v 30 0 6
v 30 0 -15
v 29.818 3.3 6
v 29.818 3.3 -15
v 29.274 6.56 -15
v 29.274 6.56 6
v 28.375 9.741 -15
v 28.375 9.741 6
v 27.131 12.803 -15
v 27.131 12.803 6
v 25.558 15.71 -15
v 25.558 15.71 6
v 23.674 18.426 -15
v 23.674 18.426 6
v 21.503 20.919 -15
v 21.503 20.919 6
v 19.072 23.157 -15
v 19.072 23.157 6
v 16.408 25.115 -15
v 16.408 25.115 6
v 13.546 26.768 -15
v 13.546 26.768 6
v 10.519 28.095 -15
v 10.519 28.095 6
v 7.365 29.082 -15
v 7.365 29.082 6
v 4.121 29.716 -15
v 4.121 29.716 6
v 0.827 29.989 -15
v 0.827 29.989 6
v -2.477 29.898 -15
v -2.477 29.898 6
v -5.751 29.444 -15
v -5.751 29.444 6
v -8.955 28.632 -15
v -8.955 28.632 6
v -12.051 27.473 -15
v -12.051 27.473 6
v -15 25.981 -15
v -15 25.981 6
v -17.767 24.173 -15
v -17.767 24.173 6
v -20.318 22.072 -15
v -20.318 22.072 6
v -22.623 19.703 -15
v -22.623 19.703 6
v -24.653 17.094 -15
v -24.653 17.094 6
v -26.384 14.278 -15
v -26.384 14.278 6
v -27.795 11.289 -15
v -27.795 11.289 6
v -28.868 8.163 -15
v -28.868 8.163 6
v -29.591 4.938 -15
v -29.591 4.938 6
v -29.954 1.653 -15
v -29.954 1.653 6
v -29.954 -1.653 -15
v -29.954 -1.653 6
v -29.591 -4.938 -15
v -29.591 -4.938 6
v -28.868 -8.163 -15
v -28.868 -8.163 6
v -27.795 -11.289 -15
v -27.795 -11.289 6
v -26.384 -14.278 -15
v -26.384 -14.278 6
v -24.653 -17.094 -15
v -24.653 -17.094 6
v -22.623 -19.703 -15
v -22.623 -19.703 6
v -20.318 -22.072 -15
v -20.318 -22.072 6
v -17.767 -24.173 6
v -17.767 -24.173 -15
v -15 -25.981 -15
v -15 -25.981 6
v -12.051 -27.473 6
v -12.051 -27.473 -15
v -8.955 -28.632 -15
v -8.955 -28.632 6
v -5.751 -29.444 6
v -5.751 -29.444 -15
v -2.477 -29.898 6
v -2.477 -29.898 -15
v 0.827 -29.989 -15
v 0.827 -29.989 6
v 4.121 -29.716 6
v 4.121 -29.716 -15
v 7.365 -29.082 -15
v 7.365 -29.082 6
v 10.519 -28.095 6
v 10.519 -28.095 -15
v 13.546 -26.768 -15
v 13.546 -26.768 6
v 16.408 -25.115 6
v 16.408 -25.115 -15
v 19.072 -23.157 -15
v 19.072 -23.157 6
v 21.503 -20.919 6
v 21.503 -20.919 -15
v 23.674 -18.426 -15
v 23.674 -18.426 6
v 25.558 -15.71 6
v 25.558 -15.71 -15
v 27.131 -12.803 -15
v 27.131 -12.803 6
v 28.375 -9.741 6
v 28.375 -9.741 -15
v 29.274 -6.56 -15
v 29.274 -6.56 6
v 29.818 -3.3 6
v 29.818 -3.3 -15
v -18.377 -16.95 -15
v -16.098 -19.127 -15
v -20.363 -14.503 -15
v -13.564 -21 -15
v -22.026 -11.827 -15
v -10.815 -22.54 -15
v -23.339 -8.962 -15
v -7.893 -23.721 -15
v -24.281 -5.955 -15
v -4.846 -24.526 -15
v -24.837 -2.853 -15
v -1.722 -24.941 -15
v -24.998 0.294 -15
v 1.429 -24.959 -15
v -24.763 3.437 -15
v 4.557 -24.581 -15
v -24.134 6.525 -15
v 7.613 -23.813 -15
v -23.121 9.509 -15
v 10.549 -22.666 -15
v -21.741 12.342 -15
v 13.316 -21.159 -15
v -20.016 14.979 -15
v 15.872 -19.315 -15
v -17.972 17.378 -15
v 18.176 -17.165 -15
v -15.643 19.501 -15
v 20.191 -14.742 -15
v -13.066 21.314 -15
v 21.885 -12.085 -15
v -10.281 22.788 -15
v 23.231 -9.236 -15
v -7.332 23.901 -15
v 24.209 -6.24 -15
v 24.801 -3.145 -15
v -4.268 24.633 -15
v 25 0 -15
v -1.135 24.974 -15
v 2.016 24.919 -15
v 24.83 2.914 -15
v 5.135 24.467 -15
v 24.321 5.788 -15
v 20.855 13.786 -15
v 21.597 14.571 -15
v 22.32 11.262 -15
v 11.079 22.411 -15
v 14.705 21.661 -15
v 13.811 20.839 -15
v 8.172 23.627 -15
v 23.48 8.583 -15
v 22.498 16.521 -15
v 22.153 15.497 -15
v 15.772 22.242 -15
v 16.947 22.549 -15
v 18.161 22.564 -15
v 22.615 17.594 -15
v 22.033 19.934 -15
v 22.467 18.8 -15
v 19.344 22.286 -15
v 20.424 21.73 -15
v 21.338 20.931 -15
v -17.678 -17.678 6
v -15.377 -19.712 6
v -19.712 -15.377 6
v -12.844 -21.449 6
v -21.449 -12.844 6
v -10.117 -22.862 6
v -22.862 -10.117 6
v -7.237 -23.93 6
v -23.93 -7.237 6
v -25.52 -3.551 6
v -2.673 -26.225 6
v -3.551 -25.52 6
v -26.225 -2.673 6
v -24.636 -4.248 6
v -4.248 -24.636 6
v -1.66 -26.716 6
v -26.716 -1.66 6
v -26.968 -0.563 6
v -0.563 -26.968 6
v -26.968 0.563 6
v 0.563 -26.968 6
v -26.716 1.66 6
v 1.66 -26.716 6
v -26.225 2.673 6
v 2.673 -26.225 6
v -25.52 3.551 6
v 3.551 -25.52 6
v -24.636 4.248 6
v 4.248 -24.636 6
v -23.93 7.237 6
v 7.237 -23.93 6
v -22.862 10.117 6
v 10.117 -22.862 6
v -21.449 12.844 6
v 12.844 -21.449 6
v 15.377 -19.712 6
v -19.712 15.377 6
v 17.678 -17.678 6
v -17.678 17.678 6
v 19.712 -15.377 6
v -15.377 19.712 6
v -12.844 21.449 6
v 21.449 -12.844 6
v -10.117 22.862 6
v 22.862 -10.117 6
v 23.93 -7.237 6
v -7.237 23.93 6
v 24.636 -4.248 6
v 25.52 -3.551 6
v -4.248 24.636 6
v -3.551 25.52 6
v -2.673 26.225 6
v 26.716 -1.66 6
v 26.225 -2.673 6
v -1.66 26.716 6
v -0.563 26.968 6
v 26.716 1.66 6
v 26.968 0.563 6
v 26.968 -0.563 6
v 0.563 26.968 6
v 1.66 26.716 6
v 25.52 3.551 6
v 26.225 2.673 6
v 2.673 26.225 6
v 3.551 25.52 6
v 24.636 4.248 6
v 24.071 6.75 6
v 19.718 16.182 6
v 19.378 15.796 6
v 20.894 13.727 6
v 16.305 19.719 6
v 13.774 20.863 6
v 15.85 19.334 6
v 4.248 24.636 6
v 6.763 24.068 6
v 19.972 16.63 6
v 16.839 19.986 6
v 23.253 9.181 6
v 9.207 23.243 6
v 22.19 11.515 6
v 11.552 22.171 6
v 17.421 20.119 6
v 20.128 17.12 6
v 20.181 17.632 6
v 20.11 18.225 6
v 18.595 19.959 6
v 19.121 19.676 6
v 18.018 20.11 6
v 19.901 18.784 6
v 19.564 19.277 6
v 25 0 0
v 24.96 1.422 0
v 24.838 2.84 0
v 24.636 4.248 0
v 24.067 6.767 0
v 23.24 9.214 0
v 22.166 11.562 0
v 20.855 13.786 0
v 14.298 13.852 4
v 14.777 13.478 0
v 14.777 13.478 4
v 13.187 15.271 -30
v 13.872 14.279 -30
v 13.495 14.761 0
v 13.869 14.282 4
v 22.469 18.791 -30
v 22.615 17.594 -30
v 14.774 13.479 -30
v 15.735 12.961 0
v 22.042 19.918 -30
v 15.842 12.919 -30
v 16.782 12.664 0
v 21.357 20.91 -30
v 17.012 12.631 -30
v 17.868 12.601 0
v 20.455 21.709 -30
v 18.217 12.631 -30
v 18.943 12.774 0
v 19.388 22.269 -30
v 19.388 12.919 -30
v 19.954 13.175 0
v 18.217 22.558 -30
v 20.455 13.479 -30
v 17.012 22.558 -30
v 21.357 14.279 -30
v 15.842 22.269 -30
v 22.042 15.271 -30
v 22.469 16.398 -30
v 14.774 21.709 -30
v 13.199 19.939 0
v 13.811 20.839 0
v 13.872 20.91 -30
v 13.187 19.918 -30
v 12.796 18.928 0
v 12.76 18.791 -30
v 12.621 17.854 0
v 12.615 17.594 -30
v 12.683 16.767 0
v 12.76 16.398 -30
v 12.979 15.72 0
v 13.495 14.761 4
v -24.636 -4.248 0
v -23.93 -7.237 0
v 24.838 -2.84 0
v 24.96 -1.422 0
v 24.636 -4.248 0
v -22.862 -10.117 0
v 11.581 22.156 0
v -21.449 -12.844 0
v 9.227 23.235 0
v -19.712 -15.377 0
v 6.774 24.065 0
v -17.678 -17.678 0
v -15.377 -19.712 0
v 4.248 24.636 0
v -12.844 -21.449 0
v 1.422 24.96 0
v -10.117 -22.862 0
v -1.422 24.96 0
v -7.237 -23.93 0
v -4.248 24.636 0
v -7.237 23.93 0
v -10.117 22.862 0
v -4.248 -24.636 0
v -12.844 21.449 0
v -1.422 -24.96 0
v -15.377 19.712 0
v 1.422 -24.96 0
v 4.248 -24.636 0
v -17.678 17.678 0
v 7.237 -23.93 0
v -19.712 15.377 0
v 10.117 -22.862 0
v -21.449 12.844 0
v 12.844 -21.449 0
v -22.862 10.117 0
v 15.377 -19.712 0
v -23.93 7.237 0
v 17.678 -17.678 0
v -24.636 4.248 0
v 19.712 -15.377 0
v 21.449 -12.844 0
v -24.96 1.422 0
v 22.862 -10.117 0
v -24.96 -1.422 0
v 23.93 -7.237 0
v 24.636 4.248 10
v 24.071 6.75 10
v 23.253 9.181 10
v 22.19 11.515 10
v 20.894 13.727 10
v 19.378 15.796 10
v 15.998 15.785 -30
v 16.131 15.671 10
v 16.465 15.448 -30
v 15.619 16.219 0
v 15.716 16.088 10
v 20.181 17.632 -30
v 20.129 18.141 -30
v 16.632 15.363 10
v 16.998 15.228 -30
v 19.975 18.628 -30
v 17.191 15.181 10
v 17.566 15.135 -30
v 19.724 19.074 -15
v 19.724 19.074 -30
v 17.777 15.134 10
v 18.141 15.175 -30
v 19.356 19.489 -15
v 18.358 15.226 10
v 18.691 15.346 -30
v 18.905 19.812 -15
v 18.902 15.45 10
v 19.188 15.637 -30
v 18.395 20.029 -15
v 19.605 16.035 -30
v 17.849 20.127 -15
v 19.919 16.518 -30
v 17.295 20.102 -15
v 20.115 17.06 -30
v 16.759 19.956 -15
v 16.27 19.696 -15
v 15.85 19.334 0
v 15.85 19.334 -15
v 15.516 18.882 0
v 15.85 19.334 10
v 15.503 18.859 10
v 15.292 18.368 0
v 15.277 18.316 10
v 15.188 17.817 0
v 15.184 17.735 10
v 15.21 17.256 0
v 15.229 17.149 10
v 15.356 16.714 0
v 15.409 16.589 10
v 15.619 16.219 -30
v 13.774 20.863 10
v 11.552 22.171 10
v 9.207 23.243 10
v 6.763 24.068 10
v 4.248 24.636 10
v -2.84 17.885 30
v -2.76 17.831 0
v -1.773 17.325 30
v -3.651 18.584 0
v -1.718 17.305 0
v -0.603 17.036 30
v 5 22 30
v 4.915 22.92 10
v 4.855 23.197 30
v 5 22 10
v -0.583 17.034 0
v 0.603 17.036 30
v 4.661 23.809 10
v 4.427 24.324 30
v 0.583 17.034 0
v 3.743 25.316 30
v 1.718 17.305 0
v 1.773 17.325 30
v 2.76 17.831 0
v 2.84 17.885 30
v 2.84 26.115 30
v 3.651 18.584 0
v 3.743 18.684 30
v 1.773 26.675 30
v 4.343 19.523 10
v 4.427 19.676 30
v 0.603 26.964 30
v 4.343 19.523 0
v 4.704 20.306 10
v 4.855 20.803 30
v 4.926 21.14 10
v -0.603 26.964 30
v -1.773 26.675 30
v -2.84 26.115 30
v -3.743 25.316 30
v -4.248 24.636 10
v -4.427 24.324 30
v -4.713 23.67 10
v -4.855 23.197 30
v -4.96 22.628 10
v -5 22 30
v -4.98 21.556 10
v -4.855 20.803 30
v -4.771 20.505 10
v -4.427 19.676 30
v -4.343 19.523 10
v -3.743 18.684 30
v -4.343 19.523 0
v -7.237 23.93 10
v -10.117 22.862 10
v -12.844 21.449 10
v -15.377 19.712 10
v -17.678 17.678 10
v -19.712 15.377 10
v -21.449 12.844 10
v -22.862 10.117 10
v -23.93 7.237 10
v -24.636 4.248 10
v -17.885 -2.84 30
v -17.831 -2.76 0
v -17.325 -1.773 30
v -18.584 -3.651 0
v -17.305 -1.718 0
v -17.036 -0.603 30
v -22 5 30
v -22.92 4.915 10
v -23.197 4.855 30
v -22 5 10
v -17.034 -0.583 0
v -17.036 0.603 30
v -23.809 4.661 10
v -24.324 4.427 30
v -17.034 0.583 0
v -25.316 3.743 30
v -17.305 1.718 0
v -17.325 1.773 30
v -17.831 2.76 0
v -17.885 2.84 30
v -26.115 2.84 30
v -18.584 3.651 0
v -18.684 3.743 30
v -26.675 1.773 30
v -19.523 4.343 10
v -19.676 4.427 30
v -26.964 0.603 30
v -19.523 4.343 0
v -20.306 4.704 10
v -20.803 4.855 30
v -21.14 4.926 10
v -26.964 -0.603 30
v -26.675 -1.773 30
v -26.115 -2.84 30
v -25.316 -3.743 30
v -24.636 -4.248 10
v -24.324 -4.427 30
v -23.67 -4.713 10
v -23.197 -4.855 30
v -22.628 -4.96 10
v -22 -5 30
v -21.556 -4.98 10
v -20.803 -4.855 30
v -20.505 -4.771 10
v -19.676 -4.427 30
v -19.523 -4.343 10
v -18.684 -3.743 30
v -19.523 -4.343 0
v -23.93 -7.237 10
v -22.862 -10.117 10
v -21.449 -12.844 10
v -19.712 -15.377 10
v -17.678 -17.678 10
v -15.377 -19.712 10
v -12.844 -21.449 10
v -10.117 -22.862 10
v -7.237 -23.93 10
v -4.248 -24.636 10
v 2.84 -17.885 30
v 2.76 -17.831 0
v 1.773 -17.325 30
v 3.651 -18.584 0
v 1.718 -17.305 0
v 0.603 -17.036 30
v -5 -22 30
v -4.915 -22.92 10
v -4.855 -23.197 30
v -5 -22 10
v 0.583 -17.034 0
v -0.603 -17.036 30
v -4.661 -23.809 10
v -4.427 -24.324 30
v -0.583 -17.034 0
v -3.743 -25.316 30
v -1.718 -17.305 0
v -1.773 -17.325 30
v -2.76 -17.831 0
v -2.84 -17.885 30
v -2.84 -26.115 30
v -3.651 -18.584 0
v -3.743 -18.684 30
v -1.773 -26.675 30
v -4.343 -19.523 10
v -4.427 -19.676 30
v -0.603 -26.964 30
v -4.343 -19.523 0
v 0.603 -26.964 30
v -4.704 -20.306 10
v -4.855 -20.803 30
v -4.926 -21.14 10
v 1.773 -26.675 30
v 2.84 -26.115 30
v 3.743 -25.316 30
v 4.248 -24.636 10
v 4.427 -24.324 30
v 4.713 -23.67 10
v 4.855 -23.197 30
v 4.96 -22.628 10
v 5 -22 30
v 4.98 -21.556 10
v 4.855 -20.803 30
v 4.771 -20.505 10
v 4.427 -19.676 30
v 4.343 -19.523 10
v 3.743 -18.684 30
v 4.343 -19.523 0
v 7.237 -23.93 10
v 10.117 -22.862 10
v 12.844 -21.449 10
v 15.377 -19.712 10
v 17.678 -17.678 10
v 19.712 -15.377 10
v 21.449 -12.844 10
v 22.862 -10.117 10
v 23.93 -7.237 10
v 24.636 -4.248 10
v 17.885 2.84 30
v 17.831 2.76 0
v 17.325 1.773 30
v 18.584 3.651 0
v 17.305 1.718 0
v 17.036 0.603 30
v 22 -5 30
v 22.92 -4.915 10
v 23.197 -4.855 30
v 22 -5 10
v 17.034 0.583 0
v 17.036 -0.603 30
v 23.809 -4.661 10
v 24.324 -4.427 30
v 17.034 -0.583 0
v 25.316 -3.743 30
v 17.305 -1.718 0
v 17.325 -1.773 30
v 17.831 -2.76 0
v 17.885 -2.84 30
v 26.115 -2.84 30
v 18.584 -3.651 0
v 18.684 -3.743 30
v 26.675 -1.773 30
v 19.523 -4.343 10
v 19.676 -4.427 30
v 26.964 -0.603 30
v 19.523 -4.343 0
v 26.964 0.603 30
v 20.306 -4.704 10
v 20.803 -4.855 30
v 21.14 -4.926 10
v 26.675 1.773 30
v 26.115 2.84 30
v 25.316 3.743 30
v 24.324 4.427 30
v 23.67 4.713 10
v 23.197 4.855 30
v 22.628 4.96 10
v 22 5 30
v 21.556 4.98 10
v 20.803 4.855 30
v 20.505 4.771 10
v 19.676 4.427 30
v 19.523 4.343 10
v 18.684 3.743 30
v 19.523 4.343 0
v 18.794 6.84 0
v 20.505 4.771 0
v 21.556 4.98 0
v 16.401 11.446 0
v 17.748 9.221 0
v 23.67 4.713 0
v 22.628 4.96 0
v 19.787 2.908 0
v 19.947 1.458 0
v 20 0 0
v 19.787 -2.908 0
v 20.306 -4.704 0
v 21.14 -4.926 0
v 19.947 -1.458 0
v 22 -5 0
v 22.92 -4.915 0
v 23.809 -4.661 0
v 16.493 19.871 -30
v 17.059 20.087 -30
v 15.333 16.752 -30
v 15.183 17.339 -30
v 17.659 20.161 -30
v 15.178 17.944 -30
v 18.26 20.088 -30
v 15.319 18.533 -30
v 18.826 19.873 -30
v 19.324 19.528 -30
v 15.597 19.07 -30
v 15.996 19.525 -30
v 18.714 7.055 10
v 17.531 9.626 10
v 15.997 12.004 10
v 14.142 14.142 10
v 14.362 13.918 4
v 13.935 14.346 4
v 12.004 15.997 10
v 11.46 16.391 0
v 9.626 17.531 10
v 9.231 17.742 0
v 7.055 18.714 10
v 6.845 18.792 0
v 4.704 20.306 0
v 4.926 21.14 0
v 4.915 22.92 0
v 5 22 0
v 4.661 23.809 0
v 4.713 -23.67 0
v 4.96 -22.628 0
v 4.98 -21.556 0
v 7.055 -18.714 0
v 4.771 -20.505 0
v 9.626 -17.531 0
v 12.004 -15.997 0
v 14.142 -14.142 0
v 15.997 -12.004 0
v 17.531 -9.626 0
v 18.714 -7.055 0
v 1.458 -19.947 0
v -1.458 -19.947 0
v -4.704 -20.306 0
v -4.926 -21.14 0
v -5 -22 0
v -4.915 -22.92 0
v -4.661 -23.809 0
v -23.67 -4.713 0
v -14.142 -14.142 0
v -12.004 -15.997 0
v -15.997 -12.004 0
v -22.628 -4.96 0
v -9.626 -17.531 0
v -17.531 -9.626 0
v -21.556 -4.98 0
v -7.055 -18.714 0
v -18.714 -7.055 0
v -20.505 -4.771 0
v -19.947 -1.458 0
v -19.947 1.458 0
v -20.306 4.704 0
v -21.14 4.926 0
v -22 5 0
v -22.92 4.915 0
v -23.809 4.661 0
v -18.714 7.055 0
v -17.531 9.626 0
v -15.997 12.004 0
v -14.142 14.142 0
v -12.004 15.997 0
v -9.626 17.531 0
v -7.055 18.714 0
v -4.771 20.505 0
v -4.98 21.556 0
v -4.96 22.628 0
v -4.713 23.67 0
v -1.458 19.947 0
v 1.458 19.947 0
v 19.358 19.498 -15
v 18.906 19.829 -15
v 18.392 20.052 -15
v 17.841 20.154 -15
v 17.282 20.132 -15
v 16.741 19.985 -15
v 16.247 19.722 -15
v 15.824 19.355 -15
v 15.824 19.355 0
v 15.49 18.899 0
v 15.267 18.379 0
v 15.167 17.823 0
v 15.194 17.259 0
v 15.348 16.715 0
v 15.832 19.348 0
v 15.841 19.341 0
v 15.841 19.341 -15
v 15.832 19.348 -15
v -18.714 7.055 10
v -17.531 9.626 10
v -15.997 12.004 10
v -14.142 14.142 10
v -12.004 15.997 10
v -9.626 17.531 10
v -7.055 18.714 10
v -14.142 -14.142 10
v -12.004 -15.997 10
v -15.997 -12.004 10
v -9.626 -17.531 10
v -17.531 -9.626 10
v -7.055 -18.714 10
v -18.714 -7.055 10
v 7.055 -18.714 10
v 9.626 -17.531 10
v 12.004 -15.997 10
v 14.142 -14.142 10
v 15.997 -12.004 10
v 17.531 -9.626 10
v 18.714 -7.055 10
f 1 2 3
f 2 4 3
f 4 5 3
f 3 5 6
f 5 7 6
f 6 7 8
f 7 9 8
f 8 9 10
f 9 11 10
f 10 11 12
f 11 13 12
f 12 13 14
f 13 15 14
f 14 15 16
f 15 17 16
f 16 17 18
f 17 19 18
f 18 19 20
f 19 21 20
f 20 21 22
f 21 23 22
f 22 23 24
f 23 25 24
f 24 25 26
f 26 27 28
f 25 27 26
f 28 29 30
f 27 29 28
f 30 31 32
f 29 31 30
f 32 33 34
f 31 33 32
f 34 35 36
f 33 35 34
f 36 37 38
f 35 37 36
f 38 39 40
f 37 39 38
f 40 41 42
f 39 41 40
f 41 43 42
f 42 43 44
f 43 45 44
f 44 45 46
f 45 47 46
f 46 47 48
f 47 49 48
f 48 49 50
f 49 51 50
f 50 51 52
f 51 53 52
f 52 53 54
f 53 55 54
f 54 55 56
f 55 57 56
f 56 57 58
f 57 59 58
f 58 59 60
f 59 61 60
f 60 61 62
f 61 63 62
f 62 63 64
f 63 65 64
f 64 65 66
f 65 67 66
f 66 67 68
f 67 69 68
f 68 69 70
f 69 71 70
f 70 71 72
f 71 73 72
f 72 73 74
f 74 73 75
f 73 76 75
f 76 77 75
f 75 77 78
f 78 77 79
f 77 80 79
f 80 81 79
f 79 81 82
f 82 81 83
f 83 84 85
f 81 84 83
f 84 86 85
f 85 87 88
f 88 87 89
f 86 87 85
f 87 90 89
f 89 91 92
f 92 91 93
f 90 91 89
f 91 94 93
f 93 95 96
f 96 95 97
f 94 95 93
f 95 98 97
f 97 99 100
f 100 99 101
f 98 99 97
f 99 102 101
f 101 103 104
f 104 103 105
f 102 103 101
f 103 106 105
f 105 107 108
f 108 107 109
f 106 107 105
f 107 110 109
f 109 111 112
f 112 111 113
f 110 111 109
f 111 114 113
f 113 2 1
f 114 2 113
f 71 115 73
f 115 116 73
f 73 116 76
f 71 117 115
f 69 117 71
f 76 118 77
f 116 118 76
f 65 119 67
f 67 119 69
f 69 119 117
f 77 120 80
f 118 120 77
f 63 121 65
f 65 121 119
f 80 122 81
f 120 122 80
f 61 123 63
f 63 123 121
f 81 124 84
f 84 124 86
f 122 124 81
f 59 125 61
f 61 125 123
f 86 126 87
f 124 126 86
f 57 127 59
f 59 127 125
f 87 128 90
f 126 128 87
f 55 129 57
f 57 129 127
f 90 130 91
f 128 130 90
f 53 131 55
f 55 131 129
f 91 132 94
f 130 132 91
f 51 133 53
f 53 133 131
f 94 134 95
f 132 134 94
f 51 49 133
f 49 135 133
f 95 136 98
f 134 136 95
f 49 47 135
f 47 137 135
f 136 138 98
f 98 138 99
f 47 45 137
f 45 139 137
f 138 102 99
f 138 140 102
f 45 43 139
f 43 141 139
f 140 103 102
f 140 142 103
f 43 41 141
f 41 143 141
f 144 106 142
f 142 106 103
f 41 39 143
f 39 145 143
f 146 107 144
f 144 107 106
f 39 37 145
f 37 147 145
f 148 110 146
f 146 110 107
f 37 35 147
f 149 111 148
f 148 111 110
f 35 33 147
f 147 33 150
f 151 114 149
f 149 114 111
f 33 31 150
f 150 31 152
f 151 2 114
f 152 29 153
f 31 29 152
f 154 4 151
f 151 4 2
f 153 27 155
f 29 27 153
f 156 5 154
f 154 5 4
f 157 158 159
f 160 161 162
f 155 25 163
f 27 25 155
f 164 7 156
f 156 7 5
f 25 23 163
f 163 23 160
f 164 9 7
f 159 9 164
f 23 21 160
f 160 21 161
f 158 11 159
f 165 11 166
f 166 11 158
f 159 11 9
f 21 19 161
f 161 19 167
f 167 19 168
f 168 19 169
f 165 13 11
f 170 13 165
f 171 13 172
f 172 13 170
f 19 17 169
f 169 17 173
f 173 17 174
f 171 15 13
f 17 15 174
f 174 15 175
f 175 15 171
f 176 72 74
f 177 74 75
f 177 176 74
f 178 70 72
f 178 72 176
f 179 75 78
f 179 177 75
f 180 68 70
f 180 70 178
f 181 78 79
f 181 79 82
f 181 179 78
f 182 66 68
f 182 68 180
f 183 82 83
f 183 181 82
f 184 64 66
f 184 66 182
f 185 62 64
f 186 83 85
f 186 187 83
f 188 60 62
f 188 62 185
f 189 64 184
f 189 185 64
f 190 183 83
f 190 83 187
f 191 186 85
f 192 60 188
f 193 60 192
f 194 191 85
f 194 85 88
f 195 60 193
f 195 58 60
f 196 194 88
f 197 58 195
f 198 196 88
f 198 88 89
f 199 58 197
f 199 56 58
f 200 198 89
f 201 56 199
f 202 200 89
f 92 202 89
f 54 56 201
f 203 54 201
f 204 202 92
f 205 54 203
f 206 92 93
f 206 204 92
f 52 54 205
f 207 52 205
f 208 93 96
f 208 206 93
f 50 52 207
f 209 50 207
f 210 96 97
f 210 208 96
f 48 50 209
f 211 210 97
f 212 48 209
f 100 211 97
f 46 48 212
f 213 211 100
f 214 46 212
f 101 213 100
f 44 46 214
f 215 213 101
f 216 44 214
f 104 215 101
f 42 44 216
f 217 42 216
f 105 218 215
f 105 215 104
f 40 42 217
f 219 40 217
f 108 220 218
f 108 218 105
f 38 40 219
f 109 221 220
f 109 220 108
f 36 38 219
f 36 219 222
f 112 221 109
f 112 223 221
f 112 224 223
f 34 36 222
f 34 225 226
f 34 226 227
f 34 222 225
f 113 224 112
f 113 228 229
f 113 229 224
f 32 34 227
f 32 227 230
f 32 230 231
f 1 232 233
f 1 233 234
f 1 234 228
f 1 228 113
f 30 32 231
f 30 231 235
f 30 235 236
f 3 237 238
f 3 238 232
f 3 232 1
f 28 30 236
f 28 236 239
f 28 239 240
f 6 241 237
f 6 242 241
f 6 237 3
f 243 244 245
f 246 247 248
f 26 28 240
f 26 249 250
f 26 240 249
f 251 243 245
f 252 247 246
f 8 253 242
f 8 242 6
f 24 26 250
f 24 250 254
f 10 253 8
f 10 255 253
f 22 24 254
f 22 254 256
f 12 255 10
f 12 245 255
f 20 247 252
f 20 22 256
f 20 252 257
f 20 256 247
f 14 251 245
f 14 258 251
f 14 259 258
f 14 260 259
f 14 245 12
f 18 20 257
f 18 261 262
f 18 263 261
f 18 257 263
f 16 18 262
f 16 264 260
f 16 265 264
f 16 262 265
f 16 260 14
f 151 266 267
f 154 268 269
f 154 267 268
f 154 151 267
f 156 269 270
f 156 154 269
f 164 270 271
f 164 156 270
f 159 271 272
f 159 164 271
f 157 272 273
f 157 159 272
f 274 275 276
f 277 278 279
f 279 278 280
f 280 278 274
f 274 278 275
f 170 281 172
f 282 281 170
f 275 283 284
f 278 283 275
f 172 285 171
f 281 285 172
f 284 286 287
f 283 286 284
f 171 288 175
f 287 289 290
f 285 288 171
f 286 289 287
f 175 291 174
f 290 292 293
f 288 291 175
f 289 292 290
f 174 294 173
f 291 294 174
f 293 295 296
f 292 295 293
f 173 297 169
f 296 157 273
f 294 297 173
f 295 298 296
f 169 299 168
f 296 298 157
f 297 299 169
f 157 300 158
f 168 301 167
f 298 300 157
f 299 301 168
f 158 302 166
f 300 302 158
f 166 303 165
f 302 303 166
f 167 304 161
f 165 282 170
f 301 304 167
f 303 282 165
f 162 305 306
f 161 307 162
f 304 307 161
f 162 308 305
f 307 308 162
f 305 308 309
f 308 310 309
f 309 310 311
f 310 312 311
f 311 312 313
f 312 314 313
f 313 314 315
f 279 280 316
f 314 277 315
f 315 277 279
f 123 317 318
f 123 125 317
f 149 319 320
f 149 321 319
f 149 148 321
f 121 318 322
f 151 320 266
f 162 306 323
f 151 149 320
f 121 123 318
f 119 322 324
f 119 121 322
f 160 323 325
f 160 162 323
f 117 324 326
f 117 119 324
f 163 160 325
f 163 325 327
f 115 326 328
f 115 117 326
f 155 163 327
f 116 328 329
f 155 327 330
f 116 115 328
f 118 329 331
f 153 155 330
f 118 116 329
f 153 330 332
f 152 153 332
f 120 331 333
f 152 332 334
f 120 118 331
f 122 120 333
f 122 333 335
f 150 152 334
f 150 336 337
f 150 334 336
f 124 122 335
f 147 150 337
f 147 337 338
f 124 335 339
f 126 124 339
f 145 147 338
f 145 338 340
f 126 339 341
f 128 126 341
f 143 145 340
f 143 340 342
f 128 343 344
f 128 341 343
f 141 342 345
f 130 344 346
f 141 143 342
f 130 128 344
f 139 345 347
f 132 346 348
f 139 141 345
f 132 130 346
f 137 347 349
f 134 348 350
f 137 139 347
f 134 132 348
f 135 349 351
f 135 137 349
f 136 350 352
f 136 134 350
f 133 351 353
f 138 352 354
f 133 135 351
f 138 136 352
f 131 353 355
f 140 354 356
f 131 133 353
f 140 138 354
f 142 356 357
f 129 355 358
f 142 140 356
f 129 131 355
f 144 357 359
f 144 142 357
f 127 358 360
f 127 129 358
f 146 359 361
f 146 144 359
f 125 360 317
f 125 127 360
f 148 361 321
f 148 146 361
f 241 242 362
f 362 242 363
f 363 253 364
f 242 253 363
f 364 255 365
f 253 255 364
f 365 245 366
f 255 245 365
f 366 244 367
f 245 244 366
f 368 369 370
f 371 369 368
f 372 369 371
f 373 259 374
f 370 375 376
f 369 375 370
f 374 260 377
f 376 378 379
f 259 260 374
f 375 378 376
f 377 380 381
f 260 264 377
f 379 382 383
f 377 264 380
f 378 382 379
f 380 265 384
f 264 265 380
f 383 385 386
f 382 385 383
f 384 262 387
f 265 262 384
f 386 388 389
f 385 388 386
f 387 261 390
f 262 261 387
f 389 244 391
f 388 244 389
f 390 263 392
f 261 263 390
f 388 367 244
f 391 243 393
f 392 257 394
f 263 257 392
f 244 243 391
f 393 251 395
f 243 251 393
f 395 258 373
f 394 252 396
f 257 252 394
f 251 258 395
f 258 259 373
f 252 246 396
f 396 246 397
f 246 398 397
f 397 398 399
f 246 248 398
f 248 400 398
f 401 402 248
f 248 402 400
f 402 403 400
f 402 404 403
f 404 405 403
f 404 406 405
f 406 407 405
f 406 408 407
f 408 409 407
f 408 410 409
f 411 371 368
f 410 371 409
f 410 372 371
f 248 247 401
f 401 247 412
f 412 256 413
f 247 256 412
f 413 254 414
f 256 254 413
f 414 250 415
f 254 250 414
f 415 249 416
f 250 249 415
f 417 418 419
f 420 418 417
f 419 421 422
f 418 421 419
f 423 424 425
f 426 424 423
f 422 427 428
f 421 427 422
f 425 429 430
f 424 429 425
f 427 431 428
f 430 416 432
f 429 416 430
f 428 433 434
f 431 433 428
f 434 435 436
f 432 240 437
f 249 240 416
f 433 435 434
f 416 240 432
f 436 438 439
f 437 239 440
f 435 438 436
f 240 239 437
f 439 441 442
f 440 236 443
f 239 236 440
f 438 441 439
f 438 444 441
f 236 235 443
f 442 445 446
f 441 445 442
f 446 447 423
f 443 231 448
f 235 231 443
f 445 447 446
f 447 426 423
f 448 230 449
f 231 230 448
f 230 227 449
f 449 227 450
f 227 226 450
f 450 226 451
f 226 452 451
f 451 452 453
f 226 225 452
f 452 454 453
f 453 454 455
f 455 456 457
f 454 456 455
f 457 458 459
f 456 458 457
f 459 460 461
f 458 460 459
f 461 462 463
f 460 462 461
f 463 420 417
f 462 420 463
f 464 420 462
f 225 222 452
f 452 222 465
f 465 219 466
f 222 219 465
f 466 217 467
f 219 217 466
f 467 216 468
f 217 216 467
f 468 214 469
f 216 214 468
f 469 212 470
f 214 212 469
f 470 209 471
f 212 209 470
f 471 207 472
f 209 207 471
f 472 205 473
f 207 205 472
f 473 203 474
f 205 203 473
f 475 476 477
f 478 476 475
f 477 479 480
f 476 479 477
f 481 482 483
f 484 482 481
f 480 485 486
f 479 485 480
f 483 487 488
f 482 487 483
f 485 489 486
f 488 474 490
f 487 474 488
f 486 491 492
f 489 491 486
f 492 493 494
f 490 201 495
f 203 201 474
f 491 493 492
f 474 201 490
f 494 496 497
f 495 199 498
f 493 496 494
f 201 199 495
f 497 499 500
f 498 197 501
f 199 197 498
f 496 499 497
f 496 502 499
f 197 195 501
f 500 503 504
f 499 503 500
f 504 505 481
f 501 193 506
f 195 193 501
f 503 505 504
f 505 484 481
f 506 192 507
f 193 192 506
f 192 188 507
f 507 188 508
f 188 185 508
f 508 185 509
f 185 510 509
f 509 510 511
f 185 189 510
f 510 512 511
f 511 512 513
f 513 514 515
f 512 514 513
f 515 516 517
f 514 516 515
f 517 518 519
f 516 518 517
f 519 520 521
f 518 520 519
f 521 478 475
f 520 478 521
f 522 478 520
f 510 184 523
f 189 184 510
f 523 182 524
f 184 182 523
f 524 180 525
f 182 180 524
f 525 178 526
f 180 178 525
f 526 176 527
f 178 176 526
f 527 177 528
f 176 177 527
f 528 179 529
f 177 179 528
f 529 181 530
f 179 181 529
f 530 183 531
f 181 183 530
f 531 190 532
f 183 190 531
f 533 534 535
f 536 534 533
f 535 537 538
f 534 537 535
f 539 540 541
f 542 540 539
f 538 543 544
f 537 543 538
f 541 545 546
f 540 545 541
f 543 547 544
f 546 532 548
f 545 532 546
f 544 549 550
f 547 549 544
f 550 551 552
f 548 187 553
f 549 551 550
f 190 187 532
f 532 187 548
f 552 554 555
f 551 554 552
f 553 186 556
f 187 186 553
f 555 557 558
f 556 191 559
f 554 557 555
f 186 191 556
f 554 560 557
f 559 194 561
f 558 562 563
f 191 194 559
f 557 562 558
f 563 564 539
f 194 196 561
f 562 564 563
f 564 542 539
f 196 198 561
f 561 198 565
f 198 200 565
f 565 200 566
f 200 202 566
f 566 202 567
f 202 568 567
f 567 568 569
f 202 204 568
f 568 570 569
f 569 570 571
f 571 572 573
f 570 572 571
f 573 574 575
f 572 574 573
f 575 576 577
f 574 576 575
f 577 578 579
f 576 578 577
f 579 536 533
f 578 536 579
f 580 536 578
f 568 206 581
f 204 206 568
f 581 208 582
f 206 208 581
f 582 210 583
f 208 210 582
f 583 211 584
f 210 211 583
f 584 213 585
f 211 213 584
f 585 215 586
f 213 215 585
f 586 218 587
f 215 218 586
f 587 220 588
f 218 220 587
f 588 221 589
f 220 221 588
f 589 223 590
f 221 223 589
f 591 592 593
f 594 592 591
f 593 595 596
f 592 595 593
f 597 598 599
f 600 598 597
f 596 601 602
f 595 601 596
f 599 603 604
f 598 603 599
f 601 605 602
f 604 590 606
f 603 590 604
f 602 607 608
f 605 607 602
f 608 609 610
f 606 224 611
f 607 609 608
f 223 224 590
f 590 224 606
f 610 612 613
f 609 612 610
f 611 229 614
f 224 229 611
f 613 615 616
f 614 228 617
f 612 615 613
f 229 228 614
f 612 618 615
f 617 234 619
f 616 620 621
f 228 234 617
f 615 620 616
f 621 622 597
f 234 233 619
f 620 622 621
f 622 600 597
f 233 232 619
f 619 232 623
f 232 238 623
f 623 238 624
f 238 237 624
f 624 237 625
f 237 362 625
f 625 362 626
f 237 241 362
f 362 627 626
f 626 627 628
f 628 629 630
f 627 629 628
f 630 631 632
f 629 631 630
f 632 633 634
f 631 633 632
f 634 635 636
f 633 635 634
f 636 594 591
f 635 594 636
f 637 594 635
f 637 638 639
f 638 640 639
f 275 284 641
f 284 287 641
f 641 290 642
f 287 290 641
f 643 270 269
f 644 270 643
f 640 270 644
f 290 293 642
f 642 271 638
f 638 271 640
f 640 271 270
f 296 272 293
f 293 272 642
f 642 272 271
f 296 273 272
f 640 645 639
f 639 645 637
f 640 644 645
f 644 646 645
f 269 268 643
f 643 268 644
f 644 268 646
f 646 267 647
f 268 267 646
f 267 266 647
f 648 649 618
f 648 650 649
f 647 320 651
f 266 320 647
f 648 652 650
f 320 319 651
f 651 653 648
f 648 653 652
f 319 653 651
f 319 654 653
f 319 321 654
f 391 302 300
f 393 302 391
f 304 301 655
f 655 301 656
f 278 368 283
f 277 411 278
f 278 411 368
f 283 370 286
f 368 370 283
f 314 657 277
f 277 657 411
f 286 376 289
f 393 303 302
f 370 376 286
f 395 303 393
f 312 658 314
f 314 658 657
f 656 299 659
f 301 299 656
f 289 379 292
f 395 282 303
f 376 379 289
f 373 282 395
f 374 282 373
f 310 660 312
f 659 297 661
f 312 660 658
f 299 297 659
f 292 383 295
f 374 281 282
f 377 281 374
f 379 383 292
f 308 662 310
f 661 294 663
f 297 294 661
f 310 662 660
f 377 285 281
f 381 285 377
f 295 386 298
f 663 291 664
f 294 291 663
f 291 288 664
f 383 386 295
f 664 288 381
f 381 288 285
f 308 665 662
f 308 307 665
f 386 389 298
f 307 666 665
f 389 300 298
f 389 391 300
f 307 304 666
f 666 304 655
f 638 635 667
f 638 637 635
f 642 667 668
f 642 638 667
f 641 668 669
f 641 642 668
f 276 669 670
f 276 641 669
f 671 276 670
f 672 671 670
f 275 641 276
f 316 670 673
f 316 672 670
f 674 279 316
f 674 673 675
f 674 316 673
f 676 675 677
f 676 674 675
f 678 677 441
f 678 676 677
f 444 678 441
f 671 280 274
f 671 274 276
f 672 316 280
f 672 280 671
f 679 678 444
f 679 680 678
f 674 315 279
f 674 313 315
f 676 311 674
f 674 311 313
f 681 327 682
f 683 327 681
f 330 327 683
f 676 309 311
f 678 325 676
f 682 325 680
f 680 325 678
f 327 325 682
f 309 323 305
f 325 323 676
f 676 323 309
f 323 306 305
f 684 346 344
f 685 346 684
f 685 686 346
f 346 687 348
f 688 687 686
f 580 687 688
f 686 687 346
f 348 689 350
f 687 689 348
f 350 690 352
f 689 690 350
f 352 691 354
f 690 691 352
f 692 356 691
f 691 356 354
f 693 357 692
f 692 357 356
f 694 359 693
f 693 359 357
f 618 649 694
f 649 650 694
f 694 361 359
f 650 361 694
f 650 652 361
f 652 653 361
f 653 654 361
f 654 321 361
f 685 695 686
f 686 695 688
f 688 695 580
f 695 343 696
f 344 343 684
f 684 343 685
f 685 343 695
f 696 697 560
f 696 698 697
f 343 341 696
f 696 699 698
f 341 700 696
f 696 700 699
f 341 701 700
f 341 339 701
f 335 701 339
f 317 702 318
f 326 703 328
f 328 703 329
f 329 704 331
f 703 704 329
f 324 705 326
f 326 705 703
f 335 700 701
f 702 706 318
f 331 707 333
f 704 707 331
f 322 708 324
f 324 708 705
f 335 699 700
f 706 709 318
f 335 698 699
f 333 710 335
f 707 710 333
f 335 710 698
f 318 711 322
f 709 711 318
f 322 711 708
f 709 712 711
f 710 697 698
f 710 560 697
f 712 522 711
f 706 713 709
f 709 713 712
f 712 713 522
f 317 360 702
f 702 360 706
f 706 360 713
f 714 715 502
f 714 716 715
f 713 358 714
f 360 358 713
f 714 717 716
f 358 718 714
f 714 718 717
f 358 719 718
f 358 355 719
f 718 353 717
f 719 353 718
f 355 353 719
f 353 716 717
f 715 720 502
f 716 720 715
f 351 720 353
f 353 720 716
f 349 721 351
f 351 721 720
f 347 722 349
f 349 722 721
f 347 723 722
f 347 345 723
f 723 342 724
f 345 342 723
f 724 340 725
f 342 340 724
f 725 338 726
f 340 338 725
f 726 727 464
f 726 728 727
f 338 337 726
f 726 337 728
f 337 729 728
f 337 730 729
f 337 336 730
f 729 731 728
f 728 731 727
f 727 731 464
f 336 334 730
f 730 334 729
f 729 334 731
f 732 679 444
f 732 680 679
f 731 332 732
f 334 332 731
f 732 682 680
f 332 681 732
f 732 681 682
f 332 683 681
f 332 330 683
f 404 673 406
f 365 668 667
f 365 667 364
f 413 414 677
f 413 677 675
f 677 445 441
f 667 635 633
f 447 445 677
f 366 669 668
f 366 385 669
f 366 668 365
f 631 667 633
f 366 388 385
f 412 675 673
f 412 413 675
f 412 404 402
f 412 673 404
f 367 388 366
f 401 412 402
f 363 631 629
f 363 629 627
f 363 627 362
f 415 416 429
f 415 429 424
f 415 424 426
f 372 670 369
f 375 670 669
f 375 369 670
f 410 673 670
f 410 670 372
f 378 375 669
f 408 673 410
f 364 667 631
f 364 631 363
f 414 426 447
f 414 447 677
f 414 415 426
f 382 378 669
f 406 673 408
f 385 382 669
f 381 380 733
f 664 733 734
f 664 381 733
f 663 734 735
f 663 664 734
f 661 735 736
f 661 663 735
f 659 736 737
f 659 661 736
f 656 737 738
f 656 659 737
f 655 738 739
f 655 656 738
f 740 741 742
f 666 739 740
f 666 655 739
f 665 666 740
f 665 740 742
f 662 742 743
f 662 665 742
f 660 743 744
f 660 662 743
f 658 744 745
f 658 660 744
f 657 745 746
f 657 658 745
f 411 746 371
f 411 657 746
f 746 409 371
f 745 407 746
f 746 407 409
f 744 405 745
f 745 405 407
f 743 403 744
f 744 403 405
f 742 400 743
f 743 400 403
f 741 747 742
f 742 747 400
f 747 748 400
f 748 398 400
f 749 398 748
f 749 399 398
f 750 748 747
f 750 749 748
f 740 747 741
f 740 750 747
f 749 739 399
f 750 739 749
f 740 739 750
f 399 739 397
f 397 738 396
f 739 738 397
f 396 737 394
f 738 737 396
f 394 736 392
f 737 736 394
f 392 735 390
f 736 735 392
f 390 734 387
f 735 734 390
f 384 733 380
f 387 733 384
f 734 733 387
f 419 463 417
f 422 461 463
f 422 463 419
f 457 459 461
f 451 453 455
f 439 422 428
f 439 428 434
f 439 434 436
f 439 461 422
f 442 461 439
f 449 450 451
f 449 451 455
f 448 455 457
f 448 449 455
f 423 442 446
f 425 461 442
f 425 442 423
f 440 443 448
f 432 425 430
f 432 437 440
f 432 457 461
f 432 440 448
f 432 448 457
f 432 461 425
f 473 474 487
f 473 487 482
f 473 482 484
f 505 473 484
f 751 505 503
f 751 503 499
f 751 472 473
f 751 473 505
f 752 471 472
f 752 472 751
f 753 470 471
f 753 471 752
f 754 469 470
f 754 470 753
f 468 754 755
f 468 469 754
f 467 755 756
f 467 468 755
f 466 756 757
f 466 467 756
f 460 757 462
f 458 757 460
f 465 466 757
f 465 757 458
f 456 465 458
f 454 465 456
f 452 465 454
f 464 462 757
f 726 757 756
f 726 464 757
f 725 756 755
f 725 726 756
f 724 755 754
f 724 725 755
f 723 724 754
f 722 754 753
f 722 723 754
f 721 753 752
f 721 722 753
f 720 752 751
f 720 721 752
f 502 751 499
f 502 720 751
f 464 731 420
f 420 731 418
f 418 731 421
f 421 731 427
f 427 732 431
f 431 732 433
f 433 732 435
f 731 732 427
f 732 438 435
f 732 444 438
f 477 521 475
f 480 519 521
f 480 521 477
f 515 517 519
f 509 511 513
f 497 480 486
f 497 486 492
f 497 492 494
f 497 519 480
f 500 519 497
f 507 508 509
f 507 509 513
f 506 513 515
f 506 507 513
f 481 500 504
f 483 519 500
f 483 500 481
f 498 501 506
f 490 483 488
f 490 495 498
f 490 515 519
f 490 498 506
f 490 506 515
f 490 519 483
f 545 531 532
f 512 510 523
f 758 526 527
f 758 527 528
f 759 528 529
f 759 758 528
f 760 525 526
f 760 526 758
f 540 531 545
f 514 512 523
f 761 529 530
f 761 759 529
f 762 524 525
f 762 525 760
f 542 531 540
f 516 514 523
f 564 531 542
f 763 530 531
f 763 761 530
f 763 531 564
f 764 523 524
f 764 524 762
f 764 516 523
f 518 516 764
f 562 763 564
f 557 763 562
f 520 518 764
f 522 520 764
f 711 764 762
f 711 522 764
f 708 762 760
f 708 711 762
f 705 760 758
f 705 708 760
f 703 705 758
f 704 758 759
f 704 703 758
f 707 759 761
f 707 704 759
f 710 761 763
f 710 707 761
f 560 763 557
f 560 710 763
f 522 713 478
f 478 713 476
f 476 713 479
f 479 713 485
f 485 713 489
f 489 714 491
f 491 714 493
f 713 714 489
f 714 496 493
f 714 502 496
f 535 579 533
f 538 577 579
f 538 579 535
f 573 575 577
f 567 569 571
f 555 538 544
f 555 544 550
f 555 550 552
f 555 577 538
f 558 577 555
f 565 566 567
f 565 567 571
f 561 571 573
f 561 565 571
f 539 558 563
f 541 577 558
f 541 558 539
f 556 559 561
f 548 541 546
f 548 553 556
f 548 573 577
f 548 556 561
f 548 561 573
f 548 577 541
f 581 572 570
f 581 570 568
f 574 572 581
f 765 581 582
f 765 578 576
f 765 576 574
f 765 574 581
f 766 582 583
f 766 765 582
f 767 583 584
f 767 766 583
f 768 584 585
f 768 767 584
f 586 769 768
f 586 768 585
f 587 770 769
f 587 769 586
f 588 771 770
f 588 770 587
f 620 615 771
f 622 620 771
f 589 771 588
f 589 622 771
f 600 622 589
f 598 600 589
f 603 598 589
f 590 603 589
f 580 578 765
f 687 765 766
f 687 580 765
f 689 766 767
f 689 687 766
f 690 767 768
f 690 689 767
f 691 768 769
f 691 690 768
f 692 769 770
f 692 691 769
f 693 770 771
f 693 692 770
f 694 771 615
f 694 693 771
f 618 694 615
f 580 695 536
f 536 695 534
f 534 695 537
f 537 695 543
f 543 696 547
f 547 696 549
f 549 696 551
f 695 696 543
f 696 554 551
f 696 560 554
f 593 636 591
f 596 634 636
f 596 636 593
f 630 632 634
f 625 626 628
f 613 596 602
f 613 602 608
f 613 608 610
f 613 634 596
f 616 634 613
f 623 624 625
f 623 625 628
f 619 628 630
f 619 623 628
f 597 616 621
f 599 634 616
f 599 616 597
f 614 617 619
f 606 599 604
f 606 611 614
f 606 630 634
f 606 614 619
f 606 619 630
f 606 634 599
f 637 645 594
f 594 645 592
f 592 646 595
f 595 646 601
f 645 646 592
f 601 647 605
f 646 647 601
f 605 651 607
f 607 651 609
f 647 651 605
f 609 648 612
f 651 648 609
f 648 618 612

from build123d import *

# Parameters (mm, degrees)
SKETCH_R           = 30
SKETCH_R_2         = 25
PAD003_DEPTH       = 6
PAD003_DEPTH_BACK  = 15
SKETCH001_R        = 5
PAD004_DEPTH       = 30
POLARPATTERN_COUNT = 4
SKETCH003_R        = 25
SKETCH003_R_2      = 20
PAD_DEPTH          = 10
SKETCH004_R        = 5
SKETCH004_R_2      = 2.5
PAD006_DEPTH       = 4
PAD006_DEPTH_BACK  = 30
SKETCH005_R        = 2.5
POCKET_DEPTH       = 30.001
POCKET_DEPTH_BACK  = 30.001


with BuildPart() as part:
    # Sketch → Pad003 (new body, two sides)
    with BuildSketch(Plane.XY) as pad003_sk:
        Circle(SKETCH_R)
        Circle(SKETCH_R_2, mode=Mode.SUBTRACT)
    extrude(amount=PAD003_DEPTH)
    extrude(pad003_sk.sketch, amount=-PAD003_DEPTH_BACK)

    # Sketch001 → Pad004 (join)
    with BuildSketch(Plane.XY):
        with Locations((0, 22)):
            Circle(SKETCH001_R)
    pad004 = extrude(amount=PAD004_DEPTH)

    # PolarPattern: Pad004 ×4 about axis
    polarpattern_axis = Axis((0, 0, 0), (0, 0, 1))
    for i in range(1, POLARPATTERN_COUNT):
        add(pad004.rotate(polarpattern_axis, i * 360 / POLARPATTERN_COUNT))

    # Sketch003 → Pad (join)
    with BuildSketch(Plane.XY):
        Circle(SKETCH003_R)
        Circle(SKETCH003_R_2, mode=Mode.SUBTRACT)
    extrude(amount=PAD_DEPTH)

    # Sketch004 → Pad006 (join, two sides)
    with BuildSketch(Plane.XY) as pad006_sk:
        with Locations((17.614592, 17.594242)):
            Circle(SKETCH004_R)
        with Locations((17.66179, 17.660632)):
            Circle(SKETCH004_R_2, mode=Mode.SUBTRACT)
    extrude(amount=PAD006_DEPTH)
    extrude(pad006_sk.sketch, amount=-PAD006_DEPTH_BACK)

    # Sketch005 → Pocket (cut, two sides)
    with BuildSketch(Plane.XY) as pocket_sk:
        with Locations((17.681431, 17.632393)):
            Circle(SKETCH005_R)
    extrude(amount=-POCKET_DEPTH, mode=Mode.SUBTRACT)
    extrude(pocket_sk.sketch, amount=POCKET_DEPTH_BACK, mode=Mode.SUBTRACT)


solid = part.part
